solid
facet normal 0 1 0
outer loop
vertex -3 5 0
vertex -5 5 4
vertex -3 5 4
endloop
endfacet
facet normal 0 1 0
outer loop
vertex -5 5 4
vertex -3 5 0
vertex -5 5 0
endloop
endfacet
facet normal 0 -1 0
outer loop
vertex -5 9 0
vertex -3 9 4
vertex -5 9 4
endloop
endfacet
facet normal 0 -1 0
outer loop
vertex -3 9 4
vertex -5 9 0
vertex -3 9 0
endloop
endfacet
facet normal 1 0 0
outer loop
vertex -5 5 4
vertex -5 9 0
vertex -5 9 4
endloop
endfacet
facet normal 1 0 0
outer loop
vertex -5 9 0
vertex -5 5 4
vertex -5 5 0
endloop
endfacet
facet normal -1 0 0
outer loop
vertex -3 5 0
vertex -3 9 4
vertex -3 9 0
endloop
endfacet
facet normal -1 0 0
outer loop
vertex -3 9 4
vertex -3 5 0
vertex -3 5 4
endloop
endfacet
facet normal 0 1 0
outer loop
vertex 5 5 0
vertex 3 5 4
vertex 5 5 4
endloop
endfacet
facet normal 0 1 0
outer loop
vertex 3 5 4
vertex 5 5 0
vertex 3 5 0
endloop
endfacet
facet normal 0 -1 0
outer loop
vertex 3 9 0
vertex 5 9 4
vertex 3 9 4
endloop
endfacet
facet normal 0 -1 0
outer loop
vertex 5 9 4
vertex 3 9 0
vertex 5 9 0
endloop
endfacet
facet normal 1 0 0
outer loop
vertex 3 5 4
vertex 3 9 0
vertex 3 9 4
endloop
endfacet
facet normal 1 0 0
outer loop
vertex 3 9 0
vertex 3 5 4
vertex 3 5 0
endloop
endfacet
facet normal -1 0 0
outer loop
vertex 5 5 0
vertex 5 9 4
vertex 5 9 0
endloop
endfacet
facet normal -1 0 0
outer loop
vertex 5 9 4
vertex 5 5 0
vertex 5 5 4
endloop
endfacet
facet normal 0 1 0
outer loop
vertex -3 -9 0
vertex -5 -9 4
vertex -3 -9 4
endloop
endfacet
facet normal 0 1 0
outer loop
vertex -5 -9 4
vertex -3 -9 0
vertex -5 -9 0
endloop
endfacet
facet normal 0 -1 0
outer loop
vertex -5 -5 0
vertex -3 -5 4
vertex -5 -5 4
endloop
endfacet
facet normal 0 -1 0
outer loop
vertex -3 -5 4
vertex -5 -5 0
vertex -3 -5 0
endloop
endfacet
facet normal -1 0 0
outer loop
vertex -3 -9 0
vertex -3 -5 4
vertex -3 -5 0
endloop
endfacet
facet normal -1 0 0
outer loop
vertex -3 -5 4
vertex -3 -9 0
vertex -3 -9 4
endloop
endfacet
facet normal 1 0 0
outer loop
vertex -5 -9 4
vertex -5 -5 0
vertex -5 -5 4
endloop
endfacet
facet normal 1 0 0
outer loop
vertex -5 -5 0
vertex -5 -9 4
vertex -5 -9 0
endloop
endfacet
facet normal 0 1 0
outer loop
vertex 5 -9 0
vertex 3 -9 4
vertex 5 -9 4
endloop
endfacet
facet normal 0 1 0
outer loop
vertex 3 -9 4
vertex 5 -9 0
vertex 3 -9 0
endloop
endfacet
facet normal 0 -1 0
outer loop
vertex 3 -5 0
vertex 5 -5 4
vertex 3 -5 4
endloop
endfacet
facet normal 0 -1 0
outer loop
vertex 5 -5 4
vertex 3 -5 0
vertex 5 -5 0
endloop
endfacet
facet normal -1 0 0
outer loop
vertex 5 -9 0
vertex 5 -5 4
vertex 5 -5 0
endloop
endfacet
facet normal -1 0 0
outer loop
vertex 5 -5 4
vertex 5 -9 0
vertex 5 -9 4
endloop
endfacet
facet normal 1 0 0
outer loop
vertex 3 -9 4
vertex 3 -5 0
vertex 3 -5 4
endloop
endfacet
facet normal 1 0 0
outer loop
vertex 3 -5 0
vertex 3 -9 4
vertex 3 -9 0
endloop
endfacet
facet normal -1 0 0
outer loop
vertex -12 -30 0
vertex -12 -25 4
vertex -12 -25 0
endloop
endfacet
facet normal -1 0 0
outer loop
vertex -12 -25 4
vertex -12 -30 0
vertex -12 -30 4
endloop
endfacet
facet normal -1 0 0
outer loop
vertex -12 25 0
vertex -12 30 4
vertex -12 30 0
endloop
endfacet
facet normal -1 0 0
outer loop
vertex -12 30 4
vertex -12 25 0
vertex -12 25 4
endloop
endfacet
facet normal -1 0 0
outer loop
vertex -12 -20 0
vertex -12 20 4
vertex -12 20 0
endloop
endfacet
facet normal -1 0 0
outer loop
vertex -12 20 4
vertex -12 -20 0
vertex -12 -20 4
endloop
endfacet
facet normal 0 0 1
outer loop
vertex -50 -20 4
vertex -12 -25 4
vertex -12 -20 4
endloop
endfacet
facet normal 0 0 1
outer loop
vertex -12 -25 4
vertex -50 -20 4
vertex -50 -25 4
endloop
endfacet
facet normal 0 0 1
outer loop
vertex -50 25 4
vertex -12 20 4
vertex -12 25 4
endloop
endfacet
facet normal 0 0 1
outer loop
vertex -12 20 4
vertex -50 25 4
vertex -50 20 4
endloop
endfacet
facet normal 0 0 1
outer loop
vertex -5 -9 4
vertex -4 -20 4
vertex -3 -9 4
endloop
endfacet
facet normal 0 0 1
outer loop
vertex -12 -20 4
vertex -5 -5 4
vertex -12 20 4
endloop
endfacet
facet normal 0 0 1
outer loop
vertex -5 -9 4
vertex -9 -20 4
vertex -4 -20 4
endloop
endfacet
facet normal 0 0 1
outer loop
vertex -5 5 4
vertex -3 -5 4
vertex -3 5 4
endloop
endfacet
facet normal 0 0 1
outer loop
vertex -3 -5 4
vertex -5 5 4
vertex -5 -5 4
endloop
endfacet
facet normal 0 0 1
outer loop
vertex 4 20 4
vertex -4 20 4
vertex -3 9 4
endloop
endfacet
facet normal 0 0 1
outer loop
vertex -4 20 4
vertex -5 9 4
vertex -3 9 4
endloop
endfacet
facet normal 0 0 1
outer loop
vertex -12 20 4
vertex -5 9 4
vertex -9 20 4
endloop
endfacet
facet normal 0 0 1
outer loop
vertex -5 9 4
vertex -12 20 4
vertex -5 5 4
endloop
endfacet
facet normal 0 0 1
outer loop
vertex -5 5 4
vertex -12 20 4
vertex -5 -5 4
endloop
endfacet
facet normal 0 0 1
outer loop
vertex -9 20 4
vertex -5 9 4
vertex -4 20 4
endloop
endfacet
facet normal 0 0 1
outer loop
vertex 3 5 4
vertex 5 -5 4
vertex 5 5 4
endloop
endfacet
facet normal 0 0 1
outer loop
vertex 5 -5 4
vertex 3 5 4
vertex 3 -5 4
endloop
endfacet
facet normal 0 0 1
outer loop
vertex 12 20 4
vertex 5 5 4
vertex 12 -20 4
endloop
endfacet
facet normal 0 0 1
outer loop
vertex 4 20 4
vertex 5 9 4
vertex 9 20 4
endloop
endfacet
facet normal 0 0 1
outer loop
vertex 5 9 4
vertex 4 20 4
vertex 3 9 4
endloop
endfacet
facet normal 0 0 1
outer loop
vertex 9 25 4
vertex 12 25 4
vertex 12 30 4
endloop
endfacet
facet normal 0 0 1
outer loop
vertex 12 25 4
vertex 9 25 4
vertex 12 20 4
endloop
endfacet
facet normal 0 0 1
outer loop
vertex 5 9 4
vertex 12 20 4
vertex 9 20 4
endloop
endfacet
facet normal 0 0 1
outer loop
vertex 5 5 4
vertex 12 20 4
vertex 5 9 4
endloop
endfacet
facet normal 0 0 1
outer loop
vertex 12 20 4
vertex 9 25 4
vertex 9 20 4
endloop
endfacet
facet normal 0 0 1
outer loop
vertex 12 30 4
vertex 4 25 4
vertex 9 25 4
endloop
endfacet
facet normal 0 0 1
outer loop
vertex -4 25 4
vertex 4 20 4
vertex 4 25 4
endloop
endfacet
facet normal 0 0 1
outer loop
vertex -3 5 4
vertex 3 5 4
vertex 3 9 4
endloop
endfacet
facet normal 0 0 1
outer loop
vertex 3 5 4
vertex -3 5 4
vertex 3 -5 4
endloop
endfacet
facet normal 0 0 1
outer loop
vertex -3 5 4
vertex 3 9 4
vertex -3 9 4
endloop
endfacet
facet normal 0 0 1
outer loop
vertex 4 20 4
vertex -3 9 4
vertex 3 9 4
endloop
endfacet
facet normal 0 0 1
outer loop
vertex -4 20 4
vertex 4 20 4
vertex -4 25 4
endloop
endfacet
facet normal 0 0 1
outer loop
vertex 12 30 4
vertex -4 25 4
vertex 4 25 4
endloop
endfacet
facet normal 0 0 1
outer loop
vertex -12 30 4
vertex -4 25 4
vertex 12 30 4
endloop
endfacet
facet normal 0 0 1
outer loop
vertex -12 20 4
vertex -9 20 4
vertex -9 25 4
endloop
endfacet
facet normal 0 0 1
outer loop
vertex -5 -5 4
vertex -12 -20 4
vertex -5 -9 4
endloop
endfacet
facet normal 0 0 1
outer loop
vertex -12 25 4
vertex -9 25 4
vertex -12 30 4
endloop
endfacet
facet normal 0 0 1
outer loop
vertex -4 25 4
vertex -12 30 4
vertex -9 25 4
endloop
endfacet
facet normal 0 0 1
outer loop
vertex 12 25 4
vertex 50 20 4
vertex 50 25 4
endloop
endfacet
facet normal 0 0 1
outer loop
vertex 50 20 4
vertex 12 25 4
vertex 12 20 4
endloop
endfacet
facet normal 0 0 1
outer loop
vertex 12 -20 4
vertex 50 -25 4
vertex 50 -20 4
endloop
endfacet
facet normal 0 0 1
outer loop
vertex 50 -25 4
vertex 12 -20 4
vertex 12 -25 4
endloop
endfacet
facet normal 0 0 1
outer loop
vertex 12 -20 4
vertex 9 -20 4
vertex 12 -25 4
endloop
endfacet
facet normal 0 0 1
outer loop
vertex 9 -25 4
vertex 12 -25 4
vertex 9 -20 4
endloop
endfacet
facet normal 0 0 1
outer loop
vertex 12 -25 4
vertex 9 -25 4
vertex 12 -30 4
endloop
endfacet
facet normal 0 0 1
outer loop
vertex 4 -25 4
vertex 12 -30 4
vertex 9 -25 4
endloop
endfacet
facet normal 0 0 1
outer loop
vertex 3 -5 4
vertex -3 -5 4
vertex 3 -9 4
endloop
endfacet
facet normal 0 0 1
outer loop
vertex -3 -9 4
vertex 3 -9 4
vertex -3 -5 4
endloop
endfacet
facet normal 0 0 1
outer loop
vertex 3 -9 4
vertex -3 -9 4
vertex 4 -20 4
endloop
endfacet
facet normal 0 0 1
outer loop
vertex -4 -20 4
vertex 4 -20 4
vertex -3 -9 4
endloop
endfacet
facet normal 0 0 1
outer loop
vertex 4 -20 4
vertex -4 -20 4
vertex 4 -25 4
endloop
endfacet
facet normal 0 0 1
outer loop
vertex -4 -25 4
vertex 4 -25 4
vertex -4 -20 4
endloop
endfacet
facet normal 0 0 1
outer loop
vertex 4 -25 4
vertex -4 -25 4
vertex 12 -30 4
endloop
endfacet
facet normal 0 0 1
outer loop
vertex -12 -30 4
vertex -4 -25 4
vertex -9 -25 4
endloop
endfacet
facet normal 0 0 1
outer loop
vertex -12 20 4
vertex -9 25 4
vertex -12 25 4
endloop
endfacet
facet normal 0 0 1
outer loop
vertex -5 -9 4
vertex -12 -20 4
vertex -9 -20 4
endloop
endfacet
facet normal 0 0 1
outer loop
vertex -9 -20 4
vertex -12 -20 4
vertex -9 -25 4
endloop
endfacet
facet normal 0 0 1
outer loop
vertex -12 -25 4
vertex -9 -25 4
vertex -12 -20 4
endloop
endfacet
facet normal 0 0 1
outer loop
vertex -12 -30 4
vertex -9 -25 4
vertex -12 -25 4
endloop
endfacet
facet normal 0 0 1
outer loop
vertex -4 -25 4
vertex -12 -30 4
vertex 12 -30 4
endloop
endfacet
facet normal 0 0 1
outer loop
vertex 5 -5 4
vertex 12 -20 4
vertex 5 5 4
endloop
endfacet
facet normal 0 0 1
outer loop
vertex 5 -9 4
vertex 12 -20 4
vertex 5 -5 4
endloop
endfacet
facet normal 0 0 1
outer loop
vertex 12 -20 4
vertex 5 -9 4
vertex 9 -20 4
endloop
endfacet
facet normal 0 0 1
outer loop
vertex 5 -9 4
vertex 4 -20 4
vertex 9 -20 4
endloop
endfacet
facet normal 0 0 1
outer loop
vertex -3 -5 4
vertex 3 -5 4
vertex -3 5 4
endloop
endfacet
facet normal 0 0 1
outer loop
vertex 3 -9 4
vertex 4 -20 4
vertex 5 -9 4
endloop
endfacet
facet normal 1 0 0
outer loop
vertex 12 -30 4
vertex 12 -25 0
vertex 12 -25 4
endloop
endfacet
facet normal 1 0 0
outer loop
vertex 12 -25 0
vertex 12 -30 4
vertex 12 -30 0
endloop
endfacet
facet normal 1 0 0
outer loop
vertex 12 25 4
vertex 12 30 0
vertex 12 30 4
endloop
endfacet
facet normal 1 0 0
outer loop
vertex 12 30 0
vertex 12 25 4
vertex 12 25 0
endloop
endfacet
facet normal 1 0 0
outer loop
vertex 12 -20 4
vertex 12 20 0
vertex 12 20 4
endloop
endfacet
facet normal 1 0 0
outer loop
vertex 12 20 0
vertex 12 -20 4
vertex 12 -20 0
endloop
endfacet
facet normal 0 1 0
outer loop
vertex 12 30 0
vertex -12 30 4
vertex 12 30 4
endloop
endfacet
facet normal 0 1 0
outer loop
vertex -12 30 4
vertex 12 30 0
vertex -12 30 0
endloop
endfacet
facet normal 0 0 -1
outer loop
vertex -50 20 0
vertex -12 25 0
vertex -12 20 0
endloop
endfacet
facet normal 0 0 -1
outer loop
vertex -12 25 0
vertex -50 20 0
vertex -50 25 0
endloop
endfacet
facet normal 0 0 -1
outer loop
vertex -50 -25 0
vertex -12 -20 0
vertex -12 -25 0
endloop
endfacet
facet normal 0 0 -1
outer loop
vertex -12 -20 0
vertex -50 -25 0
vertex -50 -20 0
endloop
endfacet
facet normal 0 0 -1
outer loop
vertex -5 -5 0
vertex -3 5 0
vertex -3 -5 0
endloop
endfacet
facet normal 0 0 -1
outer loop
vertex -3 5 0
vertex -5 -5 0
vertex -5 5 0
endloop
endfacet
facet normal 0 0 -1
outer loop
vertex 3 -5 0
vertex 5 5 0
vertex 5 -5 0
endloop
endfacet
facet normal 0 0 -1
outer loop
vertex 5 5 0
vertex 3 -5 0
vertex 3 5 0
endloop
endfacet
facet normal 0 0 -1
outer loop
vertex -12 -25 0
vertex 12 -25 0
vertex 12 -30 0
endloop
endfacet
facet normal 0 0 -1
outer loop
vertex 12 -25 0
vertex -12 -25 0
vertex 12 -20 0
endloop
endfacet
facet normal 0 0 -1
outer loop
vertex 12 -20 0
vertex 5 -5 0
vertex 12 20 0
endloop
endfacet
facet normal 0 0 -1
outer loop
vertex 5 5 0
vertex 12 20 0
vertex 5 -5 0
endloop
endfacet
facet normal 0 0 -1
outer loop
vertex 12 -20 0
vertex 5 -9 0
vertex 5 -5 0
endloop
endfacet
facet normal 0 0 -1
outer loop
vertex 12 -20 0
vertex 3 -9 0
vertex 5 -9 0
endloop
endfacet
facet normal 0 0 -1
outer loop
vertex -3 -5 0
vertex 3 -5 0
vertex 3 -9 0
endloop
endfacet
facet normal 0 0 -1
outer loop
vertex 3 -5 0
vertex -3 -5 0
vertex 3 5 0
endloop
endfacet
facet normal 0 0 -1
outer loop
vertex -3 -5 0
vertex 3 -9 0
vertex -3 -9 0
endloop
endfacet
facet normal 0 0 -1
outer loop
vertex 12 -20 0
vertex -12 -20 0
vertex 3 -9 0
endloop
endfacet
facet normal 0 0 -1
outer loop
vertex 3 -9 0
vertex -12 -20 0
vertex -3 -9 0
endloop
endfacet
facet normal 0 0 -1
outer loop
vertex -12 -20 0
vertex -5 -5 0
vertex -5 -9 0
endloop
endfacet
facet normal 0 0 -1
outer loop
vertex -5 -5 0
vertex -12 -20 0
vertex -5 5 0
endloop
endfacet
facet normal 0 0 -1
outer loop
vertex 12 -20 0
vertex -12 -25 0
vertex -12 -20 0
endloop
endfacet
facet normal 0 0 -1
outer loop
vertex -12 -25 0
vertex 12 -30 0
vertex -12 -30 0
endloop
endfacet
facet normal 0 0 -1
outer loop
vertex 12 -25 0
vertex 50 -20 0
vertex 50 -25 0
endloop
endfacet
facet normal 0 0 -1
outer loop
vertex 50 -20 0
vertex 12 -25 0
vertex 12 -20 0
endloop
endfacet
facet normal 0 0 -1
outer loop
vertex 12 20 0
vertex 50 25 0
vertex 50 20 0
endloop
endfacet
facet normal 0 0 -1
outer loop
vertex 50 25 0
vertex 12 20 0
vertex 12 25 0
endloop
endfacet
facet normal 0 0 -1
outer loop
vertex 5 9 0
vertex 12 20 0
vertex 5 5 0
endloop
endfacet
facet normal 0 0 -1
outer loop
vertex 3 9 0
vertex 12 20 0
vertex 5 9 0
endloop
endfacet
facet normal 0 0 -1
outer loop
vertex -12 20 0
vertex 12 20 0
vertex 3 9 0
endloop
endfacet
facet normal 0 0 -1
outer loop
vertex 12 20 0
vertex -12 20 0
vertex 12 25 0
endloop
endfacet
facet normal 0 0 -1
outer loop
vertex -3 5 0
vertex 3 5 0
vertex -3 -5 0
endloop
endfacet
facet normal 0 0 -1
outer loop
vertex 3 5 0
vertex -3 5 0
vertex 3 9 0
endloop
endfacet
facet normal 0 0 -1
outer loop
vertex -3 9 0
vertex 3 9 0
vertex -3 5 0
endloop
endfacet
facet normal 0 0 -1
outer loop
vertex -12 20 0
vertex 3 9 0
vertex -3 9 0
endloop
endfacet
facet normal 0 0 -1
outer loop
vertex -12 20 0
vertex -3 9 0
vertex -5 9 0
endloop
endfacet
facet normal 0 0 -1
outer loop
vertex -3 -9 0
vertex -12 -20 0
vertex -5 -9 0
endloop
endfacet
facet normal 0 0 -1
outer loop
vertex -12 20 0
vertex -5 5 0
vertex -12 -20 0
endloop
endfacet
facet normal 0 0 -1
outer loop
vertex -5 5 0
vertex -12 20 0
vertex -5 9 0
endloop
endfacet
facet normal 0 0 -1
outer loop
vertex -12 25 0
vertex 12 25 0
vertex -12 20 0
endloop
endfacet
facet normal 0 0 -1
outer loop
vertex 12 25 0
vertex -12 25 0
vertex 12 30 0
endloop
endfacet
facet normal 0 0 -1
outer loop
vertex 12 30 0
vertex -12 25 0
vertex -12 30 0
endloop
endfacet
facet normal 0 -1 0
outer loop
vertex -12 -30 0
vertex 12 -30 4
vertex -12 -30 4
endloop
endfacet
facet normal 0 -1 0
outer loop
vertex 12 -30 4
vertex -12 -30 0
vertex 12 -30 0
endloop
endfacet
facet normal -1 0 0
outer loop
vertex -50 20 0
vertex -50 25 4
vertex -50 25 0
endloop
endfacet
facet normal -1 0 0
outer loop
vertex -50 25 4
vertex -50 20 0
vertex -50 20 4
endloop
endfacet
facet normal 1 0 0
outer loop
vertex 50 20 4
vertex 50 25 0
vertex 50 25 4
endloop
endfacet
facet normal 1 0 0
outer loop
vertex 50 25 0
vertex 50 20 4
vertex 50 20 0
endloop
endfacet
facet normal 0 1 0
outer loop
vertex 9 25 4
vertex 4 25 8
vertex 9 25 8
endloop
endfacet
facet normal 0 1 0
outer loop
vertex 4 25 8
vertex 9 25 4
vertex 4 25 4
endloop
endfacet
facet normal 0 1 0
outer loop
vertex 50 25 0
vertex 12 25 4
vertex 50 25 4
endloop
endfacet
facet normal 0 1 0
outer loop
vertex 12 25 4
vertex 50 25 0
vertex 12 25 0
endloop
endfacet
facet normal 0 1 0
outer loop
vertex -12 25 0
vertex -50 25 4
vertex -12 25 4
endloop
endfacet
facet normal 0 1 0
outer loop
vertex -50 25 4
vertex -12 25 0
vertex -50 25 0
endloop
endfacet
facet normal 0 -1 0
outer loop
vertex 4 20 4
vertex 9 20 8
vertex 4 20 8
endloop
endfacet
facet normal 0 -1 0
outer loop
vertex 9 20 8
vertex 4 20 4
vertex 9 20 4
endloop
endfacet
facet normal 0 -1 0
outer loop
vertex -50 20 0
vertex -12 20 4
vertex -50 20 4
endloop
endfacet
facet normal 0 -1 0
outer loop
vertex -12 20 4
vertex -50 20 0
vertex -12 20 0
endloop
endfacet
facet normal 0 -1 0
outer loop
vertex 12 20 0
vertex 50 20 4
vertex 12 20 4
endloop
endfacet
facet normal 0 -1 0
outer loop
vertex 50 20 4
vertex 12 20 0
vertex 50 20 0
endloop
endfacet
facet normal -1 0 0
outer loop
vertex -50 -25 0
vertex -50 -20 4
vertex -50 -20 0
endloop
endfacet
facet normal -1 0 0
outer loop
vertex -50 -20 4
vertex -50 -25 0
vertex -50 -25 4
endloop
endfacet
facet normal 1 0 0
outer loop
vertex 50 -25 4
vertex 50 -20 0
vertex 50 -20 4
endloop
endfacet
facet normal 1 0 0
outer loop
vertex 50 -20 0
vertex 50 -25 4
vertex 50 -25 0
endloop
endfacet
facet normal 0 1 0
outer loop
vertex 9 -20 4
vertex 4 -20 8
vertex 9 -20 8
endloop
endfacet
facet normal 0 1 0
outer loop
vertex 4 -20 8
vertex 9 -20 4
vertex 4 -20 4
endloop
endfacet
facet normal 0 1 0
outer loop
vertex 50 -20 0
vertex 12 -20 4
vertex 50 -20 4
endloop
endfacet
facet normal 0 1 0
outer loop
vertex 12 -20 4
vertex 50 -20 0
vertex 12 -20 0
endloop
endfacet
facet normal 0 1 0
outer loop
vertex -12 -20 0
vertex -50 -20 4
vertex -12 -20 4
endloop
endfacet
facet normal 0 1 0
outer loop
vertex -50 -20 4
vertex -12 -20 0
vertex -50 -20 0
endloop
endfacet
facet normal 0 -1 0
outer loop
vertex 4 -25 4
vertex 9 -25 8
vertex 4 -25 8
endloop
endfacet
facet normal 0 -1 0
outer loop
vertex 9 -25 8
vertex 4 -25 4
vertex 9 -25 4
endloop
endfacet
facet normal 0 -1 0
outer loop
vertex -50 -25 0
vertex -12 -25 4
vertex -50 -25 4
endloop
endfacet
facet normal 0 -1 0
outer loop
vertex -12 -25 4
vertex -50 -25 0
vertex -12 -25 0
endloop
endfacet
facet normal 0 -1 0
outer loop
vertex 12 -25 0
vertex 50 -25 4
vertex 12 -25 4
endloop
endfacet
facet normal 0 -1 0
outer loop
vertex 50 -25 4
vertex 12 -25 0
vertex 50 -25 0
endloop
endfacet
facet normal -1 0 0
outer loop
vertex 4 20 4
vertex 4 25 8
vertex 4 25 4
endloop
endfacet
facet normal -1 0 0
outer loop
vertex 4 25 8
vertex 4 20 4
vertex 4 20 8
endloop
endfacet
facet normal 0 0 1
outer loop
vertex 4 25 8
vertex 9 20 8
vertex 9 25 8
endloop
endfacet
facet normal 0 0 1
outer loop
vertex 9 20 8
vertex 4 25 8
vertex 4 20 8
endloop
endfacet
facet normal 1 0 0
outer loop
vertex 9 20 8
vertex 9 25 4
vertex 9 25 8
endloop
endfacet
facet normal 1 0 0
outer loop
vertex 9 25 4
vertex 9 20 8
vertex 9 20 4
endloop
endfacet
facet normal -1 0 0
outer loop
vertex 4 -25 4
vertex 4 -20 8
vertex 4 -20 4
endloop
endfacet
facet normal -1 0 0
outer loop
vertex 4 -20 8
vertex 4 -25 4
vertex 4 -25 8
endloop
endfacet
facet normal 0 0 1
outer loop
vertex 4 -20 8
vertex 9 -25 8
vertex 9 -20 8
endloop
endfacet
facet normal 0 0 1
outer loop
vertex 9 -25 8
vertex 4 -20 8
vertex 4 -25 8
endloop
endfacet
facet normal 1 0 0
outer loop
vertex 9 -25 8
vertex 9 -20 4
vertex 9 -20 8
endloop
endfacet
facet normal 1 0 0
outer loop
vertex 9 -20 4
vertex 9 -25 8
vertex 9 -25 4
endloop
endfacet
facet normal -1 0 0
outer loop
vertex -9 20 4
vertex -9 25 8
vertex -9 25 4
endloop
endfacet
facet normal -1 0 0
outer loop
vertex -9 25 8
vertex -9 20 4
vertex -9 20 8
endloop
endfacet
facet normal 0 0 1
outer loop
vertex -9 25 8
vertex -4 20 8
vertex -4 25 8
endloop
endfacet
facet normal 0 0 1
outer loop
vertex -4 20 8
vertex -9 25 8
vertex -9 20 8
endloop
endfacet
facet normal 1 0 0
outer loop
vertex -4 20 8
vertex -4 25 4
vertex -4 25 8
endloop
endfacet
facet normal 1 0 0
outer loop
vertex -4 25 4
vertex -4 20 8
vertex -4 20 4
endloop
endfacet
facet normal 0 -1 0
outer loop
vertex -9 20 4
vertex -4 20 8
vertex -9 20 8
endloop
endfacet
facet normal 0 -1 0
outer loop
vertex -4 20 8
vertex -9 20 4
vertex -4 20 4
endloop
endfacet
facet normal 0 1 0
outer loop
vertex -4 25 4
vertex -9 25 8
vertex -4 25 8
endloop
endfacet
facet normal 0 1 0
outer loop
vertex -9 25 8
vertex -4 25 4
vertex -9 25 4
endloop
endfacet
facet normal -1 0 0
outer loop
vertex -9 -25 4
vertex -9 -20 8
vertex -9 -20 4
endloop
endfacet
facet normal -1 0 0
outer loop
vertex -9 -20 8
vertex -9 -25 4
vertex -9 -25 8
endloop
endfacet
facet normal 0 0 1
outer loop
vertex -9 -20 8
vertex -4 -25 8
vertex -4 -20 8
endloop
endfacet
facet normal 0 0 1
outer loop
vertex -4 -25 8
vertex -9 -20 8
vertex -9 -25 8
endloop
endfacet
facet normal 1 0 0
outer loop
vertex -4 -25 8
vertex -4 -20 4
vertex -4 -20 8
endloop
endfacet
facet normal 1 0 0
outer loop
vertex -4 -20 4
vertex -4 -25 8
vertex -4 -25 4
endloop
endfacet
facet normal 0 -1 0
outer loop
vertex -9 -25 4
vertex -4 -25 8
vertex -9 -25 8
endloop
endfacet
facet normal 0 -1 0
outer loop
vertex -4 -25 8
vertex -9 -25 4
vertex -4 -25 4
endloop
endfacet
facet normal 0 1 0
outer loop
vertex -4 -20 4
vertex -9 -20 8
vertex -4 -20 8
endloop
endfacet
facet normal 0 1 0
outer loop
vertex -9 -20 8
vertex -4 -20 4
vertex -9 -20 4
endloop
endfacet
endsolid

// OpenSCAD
$fn = 128;

union()
{
    /*Device handler*/
    translate([-50,20,0])
        cube(size=[100,5,4], center=false);

    translate([-50,-25,0])
        cube(size=[100,5,4], center=false);

    /*Top*/
    translate([4,20,0])
        cube(size=[5,5,8], center=false);

    translate([4,-25,0])
        cube(size=[5,5,8], center=false);

    translate([-9,20,0])
        cube(size=[5,5,8], center=false);

    translate([-9,-25,0])
        cube(size=[5,5,8], center=false);

    /*Center*/
    difference()
    {
        translate([-12,-30,0])
            cube([24,60,4], center=false);

        /*Clamp holes*/
        rotate(a=90, v=[0, 0, 1])
        {
            translate([5,3,-10])
                cube(size=[4,2,20]);

            translate([5,-3-2,-10])
                cube(size=[4,2,20]);

            translate([-9,3,-10])
                cube(size=[4,2,20]);

            translate([-9,-3-2,-10])
                cube(size=[4,2,20]);
        }
    }
}
